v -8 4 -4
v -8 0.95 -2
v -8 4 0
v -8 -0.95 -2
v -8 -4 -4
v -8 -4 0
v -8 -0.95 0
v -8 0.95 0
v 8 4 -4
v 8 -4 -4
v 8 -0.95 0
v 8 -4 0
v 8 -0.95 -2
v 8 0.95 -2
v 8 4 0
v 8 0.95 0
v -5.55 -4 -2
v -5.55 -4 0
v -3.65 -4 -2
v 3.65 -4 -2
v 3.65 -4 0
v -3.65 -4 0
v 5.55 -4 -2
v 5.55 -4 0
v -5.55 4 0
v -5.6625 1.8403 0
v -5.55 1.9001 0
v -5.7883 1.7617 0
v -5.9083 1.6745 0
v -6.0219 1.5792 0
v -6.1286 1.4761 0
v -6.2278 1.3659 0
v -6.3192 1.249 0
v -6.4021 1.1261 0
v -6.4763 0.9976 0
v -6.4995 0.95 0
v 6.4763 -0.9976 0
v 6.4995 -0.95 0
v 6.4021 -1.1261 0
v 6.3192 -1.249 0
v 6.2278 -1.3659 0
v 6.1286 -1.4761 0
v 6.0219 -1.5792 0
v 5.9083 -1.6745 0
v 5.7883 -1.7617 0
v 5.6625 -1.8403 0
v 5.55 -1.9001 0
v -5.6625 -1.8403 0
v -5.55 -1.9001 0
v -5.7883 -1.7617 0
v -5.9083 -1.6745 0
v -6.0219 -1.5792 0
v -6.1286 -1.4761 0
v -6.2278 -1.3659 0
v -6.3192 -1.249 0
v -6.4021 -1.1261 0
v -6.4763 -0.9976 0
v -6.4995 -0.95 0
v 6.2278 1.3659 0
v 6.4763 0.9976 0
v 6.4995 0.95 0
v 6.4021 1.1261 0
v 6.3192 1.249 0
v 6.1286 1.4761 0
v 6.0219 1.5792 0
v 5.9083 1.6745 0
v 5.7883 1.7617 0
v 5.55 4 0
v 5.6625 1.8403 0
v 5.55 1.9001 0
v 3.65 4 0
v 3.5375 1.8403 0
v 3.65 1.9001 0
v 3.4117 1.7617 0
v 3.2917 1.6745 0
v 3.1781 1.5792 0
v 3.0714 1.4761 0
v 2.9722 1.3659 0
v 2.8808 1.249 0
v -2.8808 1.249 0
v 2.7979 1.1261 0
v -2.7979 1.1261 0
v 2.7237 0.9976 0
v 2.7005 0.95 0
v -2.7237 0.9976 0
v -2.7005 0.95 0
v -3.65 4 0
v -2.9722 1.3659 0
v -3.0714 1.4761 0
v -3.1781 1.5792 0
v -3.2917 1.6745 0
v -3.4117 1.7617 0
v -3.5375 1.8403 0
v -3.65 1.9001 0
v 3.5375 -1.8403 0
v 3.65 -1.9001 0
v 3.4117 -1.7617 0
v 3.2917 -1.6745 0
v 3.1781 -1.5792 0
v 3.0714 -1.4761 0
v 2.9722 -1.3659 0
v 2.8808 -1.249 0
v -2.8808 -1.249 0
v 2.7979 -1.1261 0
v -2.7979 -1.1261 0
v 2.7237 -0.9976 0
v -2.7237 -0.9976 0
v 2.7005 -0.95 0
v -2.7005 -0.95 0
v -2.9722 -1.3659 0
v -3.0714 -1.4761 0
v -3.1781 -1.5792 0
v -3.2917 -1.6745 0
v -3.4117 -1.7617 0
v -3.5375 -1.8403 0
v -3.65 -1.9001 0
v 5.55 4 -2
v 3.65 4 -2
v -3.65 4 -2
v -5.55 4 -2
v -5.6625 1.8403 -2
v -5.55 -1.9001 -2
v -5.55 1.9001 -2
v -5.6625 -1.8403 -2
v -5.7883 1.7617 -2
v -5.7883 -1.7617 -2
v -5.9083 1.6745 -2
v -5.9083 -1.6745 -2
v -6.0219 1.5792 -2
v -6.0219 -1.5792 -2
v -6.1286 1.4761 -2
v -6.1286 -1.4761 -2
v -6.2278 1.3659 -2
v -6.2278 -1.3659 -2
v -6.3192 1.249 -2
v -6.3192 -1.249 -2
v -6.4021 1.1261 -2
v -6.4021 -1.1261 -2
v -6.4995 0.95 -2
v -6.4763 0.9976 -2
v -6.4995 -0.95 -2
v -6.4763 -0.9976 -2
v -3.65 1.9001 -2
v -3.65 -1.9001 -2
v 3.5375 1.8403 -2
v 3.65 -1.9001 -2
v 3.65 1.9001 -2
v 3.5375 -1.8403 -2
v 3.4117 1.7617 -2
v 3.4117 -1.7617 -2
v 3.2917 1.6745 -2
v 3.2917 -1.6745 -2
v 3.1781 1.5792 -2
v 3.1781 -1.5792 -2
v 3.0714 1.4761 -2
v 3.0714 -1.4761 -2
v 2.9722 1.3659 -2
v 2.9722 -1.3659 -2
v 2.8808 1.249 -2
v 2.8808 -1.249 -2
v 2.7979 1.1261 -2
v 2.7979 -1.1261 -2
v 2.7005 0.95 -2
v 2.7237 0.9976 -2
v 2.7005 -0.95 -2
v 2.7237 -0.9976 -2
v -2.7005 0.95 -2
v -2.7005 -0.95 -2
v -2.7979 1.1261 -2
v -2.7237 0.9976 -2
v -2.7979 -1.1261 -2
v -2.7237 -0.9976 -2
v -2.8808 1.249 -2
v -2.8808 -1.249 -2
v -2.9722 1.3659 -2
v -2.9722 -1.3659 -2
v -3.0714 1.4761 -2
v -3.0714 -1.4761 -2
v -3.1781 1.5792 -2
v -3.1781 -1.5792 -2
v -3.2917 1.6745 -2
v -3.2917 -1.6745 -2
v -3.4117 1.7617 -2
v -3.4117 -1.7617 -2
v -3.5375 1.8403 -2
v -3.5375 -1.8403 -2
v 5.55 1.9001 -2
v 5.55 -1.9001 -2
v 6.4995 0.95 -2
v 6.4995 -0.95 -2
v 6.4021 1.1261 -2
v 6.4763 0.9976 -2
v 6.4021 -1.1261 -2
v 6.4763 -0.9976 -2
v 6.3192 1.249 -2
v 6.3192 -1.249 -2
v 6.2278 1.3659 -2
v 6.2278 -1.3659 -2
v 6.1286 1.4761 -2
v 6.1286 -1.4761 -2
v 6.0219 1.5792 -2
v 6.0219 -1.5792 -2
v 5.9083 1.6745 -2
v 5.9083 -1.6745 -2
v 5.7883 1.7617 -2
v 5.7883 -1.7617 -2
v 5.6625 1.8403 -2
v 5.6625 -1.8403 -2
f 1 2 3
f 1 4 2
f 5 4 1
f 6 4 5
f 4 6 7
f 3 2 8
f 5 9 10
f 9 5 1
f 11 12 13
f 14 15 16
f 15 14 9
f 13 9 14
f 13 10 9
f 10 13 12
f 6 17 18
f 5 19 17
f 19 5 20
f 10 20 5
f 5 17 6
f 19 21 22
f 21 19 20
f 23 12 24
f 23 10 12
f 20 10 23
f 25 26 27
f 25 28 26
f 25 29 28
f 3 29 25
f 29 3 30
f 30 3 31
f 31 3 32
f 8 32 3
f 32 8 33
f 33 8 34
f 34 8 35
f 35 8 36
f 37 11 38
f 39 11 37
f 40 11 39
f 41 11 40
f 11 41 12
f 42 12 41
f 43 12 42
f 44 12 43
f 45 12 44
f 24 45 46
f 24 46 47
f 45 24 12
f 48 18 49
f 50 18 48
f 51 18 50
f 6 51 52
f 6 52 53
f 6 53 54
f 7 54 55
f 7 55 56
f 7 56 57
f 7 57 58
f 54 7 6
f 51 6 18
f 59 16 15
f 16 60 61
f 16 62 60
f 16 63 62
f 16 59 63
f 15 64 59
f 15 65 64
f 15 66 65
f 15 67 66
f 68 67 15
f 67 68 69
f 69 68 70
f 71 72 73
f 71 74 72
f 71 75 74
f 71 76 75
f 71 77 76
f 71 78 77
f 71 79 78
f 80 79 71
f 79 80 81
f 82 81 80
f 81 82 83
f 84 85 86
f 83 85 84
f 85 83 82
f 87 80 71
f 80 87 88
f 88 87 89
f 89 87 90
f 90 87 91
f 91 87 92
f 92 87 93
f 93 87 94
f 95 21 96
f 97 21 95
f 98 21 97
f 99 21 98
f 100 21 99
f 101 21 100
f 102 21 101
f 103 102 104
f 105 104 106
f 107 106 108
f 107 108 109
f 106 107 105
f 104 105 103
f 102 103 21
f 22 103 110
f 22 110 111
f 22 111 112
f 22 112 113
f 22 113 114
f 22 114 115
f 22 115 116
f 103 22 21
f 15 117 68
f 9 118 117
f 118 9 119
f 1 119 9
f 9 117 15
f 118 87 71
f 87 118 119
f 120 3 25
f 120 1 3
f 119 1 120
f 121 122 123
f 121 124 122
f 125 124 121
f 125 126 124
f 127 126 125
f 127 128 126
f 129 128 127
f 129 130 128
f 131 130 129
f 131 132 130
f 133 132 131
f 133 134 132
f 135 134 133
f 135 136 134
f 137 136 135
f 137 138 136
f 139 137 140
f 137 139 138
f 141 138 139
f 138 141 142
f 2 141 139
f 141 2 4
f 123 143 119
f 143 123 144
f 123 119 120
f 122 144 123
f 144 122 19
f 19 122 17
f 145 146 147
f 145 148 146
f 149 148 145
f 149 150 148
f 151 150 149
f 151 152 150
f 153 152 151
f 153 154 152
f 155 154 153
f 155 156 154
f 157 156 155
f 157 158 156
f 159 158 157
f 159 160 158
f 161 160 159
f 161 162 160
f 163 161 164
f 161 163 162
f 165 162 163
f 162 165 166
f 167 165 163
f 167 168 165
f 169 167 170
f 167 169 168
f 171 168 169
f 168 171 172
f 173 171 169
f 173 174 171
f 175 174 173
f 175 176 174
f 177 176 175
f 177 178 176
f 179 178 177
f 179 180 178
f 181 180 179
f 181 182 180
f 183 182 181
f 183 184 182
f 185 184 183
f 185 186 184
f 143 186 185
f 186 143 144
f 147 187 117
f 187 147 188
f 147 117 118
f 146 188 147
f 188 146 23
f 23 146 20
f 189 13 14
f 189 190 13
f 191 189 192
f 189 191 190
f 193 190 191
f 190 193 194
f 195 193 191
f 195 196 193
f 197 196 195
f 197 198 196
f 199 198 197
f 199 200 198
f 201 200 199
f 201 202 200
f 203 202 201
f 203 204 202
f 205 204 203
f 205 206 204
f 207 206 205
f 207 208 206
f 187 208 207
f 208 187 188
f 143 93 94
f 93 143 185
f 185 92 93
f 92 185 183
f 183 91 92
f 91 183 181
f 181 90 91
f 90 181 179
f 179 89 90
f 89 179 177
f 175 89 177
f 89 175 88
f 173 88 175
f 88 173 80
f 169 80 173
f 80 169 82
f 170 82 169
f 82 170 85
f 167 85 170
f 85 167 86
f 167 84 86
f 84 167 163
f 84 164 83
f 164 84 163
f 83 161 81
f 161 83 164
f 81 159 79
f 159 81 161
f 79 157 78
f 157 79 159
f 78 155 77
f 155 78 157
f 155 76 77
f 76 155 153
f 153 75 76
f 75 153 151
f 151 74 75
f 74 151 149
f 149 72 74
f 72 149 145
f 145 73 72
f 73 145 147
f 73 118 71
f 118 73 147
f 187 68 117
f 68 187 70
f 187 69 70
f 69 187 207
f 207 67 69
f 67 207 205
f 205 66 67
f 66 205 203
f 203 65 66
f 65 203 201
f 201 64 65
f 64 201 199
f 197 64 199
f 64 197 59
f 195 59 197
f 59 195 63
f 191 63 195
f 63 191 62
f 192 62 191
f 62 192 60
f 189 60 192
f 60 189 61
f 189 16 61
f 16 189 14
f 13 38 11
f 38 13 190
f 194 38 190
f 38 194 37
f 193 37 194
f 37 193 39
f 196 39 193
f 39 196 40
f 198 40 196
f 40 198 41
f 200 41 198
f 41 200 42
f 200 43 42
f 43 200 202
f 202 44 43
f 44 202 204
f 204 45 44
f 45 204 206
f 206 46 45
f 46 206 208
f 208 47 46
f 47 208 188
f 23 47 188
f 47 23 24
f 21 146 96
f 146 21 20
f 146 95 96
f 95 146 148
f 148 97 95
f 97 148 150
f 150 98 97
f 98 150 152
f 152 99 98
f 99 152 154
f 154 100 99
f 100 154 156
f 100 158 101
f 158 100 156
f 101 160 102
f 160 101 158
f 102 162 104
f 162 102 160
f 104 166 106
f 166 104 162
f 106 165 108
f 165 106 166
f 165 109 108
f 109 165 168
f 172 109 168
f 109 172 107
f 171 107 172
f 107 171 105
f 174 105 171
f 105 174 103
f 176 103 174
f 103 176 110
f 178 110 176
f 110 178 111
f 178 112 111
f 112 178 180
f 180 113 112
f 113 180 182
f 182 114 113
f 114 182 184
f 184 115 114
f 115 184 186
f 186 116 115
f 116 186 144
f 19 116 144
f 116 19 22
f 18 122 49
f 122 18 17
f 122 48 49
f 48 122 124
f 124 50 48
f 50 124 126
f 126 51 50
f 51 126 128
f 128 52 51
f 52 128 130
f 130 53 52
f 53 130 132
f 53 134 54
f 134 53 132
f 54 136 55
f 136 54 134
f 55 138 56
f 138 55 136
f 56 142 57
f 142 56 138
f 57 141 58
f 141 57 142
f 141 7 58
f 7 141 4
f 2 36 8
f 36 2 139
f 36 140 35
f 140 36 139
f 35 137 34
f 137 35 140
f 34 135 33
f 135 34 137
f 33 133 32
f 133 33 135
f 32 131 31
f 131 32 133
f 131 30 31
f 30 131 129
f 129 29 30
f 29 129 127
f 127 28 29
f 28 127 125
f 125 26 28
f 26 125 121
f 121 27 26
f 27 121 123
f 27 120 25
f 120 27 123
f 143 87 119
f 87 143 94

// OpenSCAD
baseDims = [16, 8, 4.0];
insetDepth = 2;
insetCircleDia = 4.25;
insetCircleSpacing = 9.2;
insetLineW = 1.9;

insetCircleRad = insetCircleDia/2;

rotate([($preview?0:180), 0, 0])
spacer();
//insetPattern();

module spacer()
{
    difference()
    {
        translate([-baseDims.x/2, -baseDims.y/2, 0])
        cube(baseDims);
        
        translate([0, 0, -0.01])
        insetPattern(0.01);
    }
}

module insetPattern(insetExtra=0)
{
    linear_extrude(insetDepth+insetExtra)
    {
        translate([insetCircleSpacing/2, 0])
        circle(r=insetCircleRad, $fn=($preview?30:90));
        translate([-insetCircleSpacing/2, 0])
        circle(r=insetCircleRad, $fn=($preview?30:90));
        
        square([baseDims.x+0.02, insetLineW], center=true);
        
        translate([insetCircleSpacing/2, 0])
        square([insetLineW, baseDims.y+0.02], center=true);
        translate([-insetCircleSpacing/2, 0])
        square([insetLineW, baseDims.y+0.02], center=true);
    }
}
